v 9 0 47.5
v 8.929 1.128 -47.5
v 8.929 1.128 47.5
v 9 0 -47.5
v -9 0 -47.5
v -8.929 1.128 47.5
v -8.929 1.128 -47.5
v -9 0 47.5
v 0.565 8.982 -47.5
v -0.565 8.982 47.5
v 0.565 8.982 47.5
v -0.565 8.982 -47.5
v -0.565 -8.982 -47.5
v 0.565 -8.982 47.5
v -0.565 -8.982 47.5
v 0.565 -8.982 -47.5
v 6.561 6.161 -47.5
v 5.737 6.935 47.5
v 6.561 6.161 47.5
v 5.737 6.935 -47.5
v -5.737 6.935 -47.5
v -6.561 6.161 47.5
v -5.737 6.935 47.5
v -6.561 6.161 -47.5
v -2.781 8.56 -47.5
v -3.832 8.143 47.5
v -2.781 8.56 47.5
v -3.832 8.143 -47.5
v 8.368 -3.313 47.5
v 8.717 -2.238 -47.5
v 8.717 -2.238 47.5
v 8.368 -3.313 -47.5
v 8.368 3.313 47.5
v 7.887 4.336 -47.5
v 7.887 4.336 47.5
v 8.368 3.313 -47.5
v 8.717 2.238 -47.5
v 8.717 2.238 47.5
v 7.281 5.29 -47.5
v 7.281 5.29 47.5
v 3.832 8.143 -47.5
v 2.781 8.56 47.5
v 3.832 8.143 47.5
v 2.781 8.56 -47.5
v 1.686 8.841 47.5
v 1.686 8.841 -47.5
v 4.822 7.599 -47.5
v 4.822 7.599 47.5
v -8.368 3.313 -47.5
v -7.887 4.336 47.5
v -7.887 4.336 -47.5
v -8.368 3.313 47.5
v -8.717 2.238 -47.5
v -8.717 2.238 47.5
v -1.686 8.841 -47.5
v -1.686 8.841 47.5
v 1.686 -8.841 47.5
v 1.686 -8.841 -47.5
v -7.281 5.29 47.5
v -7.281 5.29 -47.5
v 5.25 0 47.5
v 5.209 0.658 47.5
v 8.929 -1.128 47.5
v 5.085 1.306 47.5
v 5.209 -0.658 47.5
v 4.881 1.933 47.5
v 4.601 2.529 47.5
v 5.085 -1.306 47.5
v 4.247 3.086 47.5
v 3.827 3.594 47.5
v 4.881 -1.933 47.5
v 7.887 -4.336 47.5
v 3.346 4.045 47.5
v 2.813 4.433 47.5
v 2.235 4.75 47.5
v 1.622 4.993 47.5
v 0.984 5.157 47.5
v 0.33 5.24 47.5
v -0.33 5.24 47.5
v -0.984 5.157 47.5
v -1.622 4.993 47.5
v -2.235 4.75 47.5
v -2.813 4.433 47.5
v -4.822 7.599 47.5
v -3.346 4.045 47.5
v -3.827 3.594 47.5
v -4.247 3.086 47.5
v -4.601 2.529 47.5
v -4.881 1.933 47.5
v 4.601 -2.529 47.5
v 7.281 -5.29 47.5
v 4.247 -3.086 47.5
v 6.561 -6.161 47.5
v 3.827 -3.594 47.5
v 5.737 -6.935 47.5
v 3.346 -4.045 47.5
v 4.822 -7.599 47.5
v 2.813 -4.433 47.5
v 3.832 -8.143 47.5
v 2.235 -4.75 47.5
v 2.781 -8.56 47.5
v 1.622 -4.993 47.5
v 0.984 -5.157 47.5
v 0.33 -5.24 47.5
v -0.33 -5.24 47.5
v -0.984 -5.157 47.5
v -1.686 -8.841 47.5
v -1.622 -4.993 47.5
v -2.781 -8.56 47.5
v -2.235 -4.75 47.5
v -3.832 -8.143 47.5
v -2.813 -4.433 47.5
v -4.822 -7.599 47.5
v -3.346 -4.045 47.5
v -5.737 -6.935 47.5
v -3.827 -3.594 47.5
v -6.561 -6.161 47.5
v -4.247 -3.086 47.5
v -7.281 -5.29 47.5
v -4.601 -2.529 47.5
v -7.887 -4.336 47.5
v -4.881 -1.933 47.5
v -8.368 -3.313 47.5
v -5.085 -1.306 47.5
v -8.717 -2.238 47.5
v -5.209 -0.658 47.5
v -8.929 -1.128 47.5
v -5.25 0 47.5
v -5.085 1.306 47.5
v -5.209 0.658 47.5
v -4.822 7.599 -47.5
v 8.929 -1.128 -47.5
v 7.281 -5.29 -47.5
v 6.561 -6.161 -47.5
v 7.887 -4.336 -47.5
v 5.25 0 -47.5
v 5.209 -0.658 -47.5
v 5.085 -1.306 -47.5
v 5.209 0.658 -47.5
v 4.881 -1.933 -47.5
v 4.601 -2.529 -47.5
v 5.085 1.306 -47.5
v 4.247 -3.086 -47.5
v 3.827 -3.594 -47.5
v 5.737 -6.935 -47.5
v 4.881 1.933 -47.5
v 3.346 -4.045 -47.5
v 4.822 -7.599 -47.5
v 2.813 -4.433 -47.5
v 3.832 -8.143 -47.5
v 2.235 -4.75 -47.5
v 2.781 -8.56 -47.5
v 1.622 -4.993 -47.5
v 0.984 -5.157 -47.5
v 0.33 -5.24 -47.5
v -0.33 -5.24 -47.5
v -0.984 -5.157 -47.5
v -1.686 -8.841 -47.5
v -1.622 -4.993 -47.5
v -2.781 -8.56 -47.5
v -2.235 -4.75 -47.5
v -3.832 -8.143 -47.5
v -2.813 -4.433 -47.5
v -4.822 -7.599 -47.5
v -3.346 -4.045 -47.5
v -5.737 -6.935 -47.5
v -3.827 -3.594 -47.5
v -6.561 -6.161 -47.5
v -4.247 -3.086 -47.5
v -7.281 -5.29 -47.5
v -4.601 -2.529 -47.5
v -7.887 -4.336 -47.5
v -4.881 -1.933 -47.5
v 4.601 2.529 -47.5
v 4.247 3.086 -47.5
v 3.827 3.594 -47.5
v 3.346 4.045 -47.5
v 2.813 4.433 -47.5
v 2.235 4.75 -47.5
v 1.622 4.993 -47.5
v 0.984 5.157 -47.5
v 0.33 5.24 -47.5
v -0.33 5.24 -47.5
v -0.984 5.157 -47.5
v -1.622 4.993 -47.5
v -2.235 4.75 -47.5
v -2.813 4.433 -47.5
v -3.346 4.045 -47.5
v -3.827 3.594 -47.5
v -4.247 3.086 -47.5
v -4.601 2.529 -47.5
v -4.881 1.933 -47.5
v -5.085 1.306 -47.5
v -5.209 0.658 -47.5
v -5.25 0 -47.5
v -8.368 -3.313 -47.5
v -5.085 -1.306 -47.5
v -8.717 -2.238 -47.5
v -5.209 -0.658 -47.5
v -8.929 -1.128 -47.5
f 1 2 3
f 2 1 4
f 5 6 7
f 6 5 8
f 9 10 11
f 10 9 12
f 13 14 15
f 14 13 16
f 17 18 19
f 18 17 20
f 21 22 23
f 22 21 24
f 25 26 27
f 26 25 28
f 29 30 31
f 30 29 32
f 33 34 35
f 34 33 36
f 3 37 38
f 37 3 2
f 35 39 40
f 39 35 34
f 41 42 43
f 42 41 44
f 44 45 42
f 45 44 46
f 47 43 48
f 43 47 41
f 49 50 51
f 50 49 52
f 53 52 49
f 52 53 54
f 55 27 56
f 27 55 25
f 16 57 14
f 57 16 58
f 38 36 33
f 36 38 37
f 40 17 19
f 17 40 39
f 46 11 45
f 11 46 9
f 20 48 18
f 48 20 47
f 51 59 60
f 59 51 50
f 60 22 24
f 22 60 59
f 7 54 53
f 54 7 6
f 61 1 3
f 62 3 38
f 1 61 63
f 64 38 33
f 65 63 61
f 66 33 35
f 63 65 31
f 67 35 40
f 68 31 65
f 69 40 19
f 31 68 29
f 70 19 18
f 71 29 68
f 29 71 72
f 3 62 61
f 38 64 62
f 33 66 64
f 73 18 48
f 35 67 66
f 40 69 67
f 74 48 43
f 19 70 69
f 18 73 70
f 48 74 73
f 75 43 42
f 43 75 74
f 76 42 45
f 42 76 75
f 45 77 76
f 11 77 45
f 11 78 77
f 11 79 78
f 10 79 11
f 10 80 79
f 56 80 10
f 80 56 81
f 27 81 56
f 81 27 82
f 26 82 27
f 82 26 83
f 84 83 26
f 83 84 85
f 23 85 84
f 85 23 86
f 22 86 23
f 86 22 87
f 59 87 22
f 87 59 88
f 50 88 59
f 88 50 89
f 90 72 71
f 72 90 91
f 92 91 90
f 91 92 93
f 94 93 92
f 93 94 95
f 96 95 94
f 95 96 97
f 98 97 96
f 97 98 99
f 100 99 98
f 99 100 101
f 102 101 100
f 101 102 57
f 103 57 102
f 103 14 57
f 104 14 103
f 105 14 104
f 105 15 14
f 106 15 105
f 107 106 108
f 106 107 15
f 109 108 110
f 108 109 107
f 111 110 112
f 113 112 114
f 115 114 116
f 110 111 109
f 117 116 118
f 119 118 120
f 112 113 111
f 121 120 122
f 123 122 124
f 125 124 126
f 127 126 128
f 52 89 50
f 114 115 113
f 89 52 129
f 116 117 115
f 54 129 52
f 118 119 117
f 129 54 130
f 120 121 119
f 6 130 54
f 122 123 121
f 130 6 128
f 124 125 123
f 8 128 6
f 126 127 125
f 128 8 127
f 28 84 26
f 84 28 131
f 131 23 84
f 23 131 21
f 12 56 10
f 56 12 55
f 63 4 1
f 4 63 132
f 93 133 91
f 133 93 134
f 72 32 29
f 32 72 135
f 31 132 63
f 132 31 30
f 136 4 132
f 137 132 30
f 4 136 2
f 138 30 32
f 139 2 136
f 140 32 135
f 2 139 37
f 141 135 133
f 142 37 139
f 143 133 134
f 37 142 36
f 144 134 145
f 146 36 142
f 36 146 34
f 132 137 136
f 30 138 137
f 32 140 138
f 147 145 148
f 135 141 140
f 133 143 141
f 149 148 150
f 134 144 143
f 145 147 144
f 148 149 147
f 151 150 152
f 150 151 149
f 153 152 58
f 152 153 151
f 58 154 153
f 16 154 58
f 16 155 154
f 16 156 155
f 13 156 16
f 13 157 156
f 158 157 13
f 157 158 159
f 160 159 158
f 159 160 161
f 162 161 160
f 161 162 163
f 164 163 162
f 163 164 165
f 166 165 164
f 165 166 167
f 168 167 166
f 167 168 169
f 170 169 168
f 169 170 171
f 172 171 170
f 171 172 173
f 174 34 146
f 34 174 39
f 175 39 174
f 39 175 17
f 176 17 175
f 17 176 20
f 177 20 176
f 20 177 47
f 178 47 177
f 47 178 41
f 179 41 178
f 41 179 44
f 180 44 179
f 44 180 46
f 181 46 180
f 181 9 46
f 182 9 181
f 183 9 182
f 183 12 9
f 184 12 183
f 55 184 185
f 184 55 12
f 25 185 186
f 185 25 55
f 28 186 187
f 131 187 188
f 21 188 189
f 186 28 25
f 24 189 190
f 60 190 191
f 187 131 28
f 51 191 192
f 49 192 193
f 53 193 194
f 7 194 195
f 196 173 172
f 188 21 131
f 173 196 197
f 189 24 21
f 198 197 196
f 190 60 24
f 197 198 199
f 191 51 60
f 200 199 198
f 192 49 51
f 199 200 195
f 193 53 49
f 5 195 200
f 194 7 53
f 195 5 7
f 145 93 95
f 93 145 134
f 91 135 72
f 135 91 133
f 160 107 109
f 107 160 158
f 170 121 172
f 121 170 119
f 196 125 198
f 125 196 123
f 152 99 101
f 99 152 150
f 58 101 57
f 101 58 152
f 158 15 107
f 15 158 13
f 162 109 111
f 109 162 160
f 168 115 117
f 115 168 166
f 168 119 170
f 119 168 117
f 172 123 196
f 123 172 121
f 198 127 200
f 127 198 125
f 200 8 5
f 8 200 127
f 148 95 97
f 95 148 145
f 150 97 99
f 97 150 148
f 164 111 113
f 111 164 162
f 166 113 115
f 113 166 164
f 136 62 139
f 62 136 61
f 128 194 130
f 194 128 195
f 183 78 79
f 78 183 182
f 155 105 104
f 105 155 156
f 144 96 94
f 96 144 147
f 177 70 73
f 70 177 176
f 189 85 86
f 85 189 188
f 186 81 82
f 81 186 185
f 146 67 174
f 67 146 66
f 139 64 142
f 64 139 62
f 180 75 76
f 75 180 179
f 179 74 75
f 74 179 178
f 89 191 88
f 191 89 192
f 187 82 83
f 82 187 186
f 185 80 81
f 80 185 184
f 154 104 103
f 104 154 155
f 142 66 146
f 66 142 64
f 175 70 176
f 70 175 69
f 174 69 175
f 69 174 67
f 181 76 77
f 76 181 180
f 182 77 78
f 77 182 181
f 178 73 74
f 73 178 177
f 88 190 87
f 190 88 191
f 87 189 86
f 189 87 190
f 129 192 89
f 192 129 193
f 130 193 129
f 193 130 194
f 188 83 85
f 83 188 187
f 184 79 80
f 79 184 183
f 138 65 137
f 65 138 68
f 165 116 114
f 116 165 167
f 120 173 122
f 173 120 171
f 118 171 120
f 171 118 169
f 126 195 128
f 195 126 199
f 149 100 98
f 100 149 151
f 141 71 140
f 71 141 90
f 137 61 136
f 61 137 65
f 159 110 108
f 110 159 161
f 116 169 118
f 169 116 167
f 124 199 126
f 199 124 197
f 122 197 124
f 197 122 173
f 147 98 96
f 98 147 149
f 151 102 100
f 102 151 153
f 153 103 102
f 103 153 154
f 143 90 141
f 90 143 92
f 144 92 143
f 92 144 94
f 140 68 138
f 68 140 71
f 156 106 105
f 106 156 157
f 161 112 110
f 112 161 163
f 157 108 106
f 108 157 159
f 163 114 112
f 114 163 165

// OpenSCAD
$fn = 50;


difference() {
	union() {
		translate(v = [0, 0, -47.5000000000]) {
			cylinder(h = 95, r = 9.0000000000);
		}
	}
	union() {
		translate(v = [0, 0, -100.0000000000]) {
			cylinder(h = 200, r = 5.2500000000);
		}
	}
}
